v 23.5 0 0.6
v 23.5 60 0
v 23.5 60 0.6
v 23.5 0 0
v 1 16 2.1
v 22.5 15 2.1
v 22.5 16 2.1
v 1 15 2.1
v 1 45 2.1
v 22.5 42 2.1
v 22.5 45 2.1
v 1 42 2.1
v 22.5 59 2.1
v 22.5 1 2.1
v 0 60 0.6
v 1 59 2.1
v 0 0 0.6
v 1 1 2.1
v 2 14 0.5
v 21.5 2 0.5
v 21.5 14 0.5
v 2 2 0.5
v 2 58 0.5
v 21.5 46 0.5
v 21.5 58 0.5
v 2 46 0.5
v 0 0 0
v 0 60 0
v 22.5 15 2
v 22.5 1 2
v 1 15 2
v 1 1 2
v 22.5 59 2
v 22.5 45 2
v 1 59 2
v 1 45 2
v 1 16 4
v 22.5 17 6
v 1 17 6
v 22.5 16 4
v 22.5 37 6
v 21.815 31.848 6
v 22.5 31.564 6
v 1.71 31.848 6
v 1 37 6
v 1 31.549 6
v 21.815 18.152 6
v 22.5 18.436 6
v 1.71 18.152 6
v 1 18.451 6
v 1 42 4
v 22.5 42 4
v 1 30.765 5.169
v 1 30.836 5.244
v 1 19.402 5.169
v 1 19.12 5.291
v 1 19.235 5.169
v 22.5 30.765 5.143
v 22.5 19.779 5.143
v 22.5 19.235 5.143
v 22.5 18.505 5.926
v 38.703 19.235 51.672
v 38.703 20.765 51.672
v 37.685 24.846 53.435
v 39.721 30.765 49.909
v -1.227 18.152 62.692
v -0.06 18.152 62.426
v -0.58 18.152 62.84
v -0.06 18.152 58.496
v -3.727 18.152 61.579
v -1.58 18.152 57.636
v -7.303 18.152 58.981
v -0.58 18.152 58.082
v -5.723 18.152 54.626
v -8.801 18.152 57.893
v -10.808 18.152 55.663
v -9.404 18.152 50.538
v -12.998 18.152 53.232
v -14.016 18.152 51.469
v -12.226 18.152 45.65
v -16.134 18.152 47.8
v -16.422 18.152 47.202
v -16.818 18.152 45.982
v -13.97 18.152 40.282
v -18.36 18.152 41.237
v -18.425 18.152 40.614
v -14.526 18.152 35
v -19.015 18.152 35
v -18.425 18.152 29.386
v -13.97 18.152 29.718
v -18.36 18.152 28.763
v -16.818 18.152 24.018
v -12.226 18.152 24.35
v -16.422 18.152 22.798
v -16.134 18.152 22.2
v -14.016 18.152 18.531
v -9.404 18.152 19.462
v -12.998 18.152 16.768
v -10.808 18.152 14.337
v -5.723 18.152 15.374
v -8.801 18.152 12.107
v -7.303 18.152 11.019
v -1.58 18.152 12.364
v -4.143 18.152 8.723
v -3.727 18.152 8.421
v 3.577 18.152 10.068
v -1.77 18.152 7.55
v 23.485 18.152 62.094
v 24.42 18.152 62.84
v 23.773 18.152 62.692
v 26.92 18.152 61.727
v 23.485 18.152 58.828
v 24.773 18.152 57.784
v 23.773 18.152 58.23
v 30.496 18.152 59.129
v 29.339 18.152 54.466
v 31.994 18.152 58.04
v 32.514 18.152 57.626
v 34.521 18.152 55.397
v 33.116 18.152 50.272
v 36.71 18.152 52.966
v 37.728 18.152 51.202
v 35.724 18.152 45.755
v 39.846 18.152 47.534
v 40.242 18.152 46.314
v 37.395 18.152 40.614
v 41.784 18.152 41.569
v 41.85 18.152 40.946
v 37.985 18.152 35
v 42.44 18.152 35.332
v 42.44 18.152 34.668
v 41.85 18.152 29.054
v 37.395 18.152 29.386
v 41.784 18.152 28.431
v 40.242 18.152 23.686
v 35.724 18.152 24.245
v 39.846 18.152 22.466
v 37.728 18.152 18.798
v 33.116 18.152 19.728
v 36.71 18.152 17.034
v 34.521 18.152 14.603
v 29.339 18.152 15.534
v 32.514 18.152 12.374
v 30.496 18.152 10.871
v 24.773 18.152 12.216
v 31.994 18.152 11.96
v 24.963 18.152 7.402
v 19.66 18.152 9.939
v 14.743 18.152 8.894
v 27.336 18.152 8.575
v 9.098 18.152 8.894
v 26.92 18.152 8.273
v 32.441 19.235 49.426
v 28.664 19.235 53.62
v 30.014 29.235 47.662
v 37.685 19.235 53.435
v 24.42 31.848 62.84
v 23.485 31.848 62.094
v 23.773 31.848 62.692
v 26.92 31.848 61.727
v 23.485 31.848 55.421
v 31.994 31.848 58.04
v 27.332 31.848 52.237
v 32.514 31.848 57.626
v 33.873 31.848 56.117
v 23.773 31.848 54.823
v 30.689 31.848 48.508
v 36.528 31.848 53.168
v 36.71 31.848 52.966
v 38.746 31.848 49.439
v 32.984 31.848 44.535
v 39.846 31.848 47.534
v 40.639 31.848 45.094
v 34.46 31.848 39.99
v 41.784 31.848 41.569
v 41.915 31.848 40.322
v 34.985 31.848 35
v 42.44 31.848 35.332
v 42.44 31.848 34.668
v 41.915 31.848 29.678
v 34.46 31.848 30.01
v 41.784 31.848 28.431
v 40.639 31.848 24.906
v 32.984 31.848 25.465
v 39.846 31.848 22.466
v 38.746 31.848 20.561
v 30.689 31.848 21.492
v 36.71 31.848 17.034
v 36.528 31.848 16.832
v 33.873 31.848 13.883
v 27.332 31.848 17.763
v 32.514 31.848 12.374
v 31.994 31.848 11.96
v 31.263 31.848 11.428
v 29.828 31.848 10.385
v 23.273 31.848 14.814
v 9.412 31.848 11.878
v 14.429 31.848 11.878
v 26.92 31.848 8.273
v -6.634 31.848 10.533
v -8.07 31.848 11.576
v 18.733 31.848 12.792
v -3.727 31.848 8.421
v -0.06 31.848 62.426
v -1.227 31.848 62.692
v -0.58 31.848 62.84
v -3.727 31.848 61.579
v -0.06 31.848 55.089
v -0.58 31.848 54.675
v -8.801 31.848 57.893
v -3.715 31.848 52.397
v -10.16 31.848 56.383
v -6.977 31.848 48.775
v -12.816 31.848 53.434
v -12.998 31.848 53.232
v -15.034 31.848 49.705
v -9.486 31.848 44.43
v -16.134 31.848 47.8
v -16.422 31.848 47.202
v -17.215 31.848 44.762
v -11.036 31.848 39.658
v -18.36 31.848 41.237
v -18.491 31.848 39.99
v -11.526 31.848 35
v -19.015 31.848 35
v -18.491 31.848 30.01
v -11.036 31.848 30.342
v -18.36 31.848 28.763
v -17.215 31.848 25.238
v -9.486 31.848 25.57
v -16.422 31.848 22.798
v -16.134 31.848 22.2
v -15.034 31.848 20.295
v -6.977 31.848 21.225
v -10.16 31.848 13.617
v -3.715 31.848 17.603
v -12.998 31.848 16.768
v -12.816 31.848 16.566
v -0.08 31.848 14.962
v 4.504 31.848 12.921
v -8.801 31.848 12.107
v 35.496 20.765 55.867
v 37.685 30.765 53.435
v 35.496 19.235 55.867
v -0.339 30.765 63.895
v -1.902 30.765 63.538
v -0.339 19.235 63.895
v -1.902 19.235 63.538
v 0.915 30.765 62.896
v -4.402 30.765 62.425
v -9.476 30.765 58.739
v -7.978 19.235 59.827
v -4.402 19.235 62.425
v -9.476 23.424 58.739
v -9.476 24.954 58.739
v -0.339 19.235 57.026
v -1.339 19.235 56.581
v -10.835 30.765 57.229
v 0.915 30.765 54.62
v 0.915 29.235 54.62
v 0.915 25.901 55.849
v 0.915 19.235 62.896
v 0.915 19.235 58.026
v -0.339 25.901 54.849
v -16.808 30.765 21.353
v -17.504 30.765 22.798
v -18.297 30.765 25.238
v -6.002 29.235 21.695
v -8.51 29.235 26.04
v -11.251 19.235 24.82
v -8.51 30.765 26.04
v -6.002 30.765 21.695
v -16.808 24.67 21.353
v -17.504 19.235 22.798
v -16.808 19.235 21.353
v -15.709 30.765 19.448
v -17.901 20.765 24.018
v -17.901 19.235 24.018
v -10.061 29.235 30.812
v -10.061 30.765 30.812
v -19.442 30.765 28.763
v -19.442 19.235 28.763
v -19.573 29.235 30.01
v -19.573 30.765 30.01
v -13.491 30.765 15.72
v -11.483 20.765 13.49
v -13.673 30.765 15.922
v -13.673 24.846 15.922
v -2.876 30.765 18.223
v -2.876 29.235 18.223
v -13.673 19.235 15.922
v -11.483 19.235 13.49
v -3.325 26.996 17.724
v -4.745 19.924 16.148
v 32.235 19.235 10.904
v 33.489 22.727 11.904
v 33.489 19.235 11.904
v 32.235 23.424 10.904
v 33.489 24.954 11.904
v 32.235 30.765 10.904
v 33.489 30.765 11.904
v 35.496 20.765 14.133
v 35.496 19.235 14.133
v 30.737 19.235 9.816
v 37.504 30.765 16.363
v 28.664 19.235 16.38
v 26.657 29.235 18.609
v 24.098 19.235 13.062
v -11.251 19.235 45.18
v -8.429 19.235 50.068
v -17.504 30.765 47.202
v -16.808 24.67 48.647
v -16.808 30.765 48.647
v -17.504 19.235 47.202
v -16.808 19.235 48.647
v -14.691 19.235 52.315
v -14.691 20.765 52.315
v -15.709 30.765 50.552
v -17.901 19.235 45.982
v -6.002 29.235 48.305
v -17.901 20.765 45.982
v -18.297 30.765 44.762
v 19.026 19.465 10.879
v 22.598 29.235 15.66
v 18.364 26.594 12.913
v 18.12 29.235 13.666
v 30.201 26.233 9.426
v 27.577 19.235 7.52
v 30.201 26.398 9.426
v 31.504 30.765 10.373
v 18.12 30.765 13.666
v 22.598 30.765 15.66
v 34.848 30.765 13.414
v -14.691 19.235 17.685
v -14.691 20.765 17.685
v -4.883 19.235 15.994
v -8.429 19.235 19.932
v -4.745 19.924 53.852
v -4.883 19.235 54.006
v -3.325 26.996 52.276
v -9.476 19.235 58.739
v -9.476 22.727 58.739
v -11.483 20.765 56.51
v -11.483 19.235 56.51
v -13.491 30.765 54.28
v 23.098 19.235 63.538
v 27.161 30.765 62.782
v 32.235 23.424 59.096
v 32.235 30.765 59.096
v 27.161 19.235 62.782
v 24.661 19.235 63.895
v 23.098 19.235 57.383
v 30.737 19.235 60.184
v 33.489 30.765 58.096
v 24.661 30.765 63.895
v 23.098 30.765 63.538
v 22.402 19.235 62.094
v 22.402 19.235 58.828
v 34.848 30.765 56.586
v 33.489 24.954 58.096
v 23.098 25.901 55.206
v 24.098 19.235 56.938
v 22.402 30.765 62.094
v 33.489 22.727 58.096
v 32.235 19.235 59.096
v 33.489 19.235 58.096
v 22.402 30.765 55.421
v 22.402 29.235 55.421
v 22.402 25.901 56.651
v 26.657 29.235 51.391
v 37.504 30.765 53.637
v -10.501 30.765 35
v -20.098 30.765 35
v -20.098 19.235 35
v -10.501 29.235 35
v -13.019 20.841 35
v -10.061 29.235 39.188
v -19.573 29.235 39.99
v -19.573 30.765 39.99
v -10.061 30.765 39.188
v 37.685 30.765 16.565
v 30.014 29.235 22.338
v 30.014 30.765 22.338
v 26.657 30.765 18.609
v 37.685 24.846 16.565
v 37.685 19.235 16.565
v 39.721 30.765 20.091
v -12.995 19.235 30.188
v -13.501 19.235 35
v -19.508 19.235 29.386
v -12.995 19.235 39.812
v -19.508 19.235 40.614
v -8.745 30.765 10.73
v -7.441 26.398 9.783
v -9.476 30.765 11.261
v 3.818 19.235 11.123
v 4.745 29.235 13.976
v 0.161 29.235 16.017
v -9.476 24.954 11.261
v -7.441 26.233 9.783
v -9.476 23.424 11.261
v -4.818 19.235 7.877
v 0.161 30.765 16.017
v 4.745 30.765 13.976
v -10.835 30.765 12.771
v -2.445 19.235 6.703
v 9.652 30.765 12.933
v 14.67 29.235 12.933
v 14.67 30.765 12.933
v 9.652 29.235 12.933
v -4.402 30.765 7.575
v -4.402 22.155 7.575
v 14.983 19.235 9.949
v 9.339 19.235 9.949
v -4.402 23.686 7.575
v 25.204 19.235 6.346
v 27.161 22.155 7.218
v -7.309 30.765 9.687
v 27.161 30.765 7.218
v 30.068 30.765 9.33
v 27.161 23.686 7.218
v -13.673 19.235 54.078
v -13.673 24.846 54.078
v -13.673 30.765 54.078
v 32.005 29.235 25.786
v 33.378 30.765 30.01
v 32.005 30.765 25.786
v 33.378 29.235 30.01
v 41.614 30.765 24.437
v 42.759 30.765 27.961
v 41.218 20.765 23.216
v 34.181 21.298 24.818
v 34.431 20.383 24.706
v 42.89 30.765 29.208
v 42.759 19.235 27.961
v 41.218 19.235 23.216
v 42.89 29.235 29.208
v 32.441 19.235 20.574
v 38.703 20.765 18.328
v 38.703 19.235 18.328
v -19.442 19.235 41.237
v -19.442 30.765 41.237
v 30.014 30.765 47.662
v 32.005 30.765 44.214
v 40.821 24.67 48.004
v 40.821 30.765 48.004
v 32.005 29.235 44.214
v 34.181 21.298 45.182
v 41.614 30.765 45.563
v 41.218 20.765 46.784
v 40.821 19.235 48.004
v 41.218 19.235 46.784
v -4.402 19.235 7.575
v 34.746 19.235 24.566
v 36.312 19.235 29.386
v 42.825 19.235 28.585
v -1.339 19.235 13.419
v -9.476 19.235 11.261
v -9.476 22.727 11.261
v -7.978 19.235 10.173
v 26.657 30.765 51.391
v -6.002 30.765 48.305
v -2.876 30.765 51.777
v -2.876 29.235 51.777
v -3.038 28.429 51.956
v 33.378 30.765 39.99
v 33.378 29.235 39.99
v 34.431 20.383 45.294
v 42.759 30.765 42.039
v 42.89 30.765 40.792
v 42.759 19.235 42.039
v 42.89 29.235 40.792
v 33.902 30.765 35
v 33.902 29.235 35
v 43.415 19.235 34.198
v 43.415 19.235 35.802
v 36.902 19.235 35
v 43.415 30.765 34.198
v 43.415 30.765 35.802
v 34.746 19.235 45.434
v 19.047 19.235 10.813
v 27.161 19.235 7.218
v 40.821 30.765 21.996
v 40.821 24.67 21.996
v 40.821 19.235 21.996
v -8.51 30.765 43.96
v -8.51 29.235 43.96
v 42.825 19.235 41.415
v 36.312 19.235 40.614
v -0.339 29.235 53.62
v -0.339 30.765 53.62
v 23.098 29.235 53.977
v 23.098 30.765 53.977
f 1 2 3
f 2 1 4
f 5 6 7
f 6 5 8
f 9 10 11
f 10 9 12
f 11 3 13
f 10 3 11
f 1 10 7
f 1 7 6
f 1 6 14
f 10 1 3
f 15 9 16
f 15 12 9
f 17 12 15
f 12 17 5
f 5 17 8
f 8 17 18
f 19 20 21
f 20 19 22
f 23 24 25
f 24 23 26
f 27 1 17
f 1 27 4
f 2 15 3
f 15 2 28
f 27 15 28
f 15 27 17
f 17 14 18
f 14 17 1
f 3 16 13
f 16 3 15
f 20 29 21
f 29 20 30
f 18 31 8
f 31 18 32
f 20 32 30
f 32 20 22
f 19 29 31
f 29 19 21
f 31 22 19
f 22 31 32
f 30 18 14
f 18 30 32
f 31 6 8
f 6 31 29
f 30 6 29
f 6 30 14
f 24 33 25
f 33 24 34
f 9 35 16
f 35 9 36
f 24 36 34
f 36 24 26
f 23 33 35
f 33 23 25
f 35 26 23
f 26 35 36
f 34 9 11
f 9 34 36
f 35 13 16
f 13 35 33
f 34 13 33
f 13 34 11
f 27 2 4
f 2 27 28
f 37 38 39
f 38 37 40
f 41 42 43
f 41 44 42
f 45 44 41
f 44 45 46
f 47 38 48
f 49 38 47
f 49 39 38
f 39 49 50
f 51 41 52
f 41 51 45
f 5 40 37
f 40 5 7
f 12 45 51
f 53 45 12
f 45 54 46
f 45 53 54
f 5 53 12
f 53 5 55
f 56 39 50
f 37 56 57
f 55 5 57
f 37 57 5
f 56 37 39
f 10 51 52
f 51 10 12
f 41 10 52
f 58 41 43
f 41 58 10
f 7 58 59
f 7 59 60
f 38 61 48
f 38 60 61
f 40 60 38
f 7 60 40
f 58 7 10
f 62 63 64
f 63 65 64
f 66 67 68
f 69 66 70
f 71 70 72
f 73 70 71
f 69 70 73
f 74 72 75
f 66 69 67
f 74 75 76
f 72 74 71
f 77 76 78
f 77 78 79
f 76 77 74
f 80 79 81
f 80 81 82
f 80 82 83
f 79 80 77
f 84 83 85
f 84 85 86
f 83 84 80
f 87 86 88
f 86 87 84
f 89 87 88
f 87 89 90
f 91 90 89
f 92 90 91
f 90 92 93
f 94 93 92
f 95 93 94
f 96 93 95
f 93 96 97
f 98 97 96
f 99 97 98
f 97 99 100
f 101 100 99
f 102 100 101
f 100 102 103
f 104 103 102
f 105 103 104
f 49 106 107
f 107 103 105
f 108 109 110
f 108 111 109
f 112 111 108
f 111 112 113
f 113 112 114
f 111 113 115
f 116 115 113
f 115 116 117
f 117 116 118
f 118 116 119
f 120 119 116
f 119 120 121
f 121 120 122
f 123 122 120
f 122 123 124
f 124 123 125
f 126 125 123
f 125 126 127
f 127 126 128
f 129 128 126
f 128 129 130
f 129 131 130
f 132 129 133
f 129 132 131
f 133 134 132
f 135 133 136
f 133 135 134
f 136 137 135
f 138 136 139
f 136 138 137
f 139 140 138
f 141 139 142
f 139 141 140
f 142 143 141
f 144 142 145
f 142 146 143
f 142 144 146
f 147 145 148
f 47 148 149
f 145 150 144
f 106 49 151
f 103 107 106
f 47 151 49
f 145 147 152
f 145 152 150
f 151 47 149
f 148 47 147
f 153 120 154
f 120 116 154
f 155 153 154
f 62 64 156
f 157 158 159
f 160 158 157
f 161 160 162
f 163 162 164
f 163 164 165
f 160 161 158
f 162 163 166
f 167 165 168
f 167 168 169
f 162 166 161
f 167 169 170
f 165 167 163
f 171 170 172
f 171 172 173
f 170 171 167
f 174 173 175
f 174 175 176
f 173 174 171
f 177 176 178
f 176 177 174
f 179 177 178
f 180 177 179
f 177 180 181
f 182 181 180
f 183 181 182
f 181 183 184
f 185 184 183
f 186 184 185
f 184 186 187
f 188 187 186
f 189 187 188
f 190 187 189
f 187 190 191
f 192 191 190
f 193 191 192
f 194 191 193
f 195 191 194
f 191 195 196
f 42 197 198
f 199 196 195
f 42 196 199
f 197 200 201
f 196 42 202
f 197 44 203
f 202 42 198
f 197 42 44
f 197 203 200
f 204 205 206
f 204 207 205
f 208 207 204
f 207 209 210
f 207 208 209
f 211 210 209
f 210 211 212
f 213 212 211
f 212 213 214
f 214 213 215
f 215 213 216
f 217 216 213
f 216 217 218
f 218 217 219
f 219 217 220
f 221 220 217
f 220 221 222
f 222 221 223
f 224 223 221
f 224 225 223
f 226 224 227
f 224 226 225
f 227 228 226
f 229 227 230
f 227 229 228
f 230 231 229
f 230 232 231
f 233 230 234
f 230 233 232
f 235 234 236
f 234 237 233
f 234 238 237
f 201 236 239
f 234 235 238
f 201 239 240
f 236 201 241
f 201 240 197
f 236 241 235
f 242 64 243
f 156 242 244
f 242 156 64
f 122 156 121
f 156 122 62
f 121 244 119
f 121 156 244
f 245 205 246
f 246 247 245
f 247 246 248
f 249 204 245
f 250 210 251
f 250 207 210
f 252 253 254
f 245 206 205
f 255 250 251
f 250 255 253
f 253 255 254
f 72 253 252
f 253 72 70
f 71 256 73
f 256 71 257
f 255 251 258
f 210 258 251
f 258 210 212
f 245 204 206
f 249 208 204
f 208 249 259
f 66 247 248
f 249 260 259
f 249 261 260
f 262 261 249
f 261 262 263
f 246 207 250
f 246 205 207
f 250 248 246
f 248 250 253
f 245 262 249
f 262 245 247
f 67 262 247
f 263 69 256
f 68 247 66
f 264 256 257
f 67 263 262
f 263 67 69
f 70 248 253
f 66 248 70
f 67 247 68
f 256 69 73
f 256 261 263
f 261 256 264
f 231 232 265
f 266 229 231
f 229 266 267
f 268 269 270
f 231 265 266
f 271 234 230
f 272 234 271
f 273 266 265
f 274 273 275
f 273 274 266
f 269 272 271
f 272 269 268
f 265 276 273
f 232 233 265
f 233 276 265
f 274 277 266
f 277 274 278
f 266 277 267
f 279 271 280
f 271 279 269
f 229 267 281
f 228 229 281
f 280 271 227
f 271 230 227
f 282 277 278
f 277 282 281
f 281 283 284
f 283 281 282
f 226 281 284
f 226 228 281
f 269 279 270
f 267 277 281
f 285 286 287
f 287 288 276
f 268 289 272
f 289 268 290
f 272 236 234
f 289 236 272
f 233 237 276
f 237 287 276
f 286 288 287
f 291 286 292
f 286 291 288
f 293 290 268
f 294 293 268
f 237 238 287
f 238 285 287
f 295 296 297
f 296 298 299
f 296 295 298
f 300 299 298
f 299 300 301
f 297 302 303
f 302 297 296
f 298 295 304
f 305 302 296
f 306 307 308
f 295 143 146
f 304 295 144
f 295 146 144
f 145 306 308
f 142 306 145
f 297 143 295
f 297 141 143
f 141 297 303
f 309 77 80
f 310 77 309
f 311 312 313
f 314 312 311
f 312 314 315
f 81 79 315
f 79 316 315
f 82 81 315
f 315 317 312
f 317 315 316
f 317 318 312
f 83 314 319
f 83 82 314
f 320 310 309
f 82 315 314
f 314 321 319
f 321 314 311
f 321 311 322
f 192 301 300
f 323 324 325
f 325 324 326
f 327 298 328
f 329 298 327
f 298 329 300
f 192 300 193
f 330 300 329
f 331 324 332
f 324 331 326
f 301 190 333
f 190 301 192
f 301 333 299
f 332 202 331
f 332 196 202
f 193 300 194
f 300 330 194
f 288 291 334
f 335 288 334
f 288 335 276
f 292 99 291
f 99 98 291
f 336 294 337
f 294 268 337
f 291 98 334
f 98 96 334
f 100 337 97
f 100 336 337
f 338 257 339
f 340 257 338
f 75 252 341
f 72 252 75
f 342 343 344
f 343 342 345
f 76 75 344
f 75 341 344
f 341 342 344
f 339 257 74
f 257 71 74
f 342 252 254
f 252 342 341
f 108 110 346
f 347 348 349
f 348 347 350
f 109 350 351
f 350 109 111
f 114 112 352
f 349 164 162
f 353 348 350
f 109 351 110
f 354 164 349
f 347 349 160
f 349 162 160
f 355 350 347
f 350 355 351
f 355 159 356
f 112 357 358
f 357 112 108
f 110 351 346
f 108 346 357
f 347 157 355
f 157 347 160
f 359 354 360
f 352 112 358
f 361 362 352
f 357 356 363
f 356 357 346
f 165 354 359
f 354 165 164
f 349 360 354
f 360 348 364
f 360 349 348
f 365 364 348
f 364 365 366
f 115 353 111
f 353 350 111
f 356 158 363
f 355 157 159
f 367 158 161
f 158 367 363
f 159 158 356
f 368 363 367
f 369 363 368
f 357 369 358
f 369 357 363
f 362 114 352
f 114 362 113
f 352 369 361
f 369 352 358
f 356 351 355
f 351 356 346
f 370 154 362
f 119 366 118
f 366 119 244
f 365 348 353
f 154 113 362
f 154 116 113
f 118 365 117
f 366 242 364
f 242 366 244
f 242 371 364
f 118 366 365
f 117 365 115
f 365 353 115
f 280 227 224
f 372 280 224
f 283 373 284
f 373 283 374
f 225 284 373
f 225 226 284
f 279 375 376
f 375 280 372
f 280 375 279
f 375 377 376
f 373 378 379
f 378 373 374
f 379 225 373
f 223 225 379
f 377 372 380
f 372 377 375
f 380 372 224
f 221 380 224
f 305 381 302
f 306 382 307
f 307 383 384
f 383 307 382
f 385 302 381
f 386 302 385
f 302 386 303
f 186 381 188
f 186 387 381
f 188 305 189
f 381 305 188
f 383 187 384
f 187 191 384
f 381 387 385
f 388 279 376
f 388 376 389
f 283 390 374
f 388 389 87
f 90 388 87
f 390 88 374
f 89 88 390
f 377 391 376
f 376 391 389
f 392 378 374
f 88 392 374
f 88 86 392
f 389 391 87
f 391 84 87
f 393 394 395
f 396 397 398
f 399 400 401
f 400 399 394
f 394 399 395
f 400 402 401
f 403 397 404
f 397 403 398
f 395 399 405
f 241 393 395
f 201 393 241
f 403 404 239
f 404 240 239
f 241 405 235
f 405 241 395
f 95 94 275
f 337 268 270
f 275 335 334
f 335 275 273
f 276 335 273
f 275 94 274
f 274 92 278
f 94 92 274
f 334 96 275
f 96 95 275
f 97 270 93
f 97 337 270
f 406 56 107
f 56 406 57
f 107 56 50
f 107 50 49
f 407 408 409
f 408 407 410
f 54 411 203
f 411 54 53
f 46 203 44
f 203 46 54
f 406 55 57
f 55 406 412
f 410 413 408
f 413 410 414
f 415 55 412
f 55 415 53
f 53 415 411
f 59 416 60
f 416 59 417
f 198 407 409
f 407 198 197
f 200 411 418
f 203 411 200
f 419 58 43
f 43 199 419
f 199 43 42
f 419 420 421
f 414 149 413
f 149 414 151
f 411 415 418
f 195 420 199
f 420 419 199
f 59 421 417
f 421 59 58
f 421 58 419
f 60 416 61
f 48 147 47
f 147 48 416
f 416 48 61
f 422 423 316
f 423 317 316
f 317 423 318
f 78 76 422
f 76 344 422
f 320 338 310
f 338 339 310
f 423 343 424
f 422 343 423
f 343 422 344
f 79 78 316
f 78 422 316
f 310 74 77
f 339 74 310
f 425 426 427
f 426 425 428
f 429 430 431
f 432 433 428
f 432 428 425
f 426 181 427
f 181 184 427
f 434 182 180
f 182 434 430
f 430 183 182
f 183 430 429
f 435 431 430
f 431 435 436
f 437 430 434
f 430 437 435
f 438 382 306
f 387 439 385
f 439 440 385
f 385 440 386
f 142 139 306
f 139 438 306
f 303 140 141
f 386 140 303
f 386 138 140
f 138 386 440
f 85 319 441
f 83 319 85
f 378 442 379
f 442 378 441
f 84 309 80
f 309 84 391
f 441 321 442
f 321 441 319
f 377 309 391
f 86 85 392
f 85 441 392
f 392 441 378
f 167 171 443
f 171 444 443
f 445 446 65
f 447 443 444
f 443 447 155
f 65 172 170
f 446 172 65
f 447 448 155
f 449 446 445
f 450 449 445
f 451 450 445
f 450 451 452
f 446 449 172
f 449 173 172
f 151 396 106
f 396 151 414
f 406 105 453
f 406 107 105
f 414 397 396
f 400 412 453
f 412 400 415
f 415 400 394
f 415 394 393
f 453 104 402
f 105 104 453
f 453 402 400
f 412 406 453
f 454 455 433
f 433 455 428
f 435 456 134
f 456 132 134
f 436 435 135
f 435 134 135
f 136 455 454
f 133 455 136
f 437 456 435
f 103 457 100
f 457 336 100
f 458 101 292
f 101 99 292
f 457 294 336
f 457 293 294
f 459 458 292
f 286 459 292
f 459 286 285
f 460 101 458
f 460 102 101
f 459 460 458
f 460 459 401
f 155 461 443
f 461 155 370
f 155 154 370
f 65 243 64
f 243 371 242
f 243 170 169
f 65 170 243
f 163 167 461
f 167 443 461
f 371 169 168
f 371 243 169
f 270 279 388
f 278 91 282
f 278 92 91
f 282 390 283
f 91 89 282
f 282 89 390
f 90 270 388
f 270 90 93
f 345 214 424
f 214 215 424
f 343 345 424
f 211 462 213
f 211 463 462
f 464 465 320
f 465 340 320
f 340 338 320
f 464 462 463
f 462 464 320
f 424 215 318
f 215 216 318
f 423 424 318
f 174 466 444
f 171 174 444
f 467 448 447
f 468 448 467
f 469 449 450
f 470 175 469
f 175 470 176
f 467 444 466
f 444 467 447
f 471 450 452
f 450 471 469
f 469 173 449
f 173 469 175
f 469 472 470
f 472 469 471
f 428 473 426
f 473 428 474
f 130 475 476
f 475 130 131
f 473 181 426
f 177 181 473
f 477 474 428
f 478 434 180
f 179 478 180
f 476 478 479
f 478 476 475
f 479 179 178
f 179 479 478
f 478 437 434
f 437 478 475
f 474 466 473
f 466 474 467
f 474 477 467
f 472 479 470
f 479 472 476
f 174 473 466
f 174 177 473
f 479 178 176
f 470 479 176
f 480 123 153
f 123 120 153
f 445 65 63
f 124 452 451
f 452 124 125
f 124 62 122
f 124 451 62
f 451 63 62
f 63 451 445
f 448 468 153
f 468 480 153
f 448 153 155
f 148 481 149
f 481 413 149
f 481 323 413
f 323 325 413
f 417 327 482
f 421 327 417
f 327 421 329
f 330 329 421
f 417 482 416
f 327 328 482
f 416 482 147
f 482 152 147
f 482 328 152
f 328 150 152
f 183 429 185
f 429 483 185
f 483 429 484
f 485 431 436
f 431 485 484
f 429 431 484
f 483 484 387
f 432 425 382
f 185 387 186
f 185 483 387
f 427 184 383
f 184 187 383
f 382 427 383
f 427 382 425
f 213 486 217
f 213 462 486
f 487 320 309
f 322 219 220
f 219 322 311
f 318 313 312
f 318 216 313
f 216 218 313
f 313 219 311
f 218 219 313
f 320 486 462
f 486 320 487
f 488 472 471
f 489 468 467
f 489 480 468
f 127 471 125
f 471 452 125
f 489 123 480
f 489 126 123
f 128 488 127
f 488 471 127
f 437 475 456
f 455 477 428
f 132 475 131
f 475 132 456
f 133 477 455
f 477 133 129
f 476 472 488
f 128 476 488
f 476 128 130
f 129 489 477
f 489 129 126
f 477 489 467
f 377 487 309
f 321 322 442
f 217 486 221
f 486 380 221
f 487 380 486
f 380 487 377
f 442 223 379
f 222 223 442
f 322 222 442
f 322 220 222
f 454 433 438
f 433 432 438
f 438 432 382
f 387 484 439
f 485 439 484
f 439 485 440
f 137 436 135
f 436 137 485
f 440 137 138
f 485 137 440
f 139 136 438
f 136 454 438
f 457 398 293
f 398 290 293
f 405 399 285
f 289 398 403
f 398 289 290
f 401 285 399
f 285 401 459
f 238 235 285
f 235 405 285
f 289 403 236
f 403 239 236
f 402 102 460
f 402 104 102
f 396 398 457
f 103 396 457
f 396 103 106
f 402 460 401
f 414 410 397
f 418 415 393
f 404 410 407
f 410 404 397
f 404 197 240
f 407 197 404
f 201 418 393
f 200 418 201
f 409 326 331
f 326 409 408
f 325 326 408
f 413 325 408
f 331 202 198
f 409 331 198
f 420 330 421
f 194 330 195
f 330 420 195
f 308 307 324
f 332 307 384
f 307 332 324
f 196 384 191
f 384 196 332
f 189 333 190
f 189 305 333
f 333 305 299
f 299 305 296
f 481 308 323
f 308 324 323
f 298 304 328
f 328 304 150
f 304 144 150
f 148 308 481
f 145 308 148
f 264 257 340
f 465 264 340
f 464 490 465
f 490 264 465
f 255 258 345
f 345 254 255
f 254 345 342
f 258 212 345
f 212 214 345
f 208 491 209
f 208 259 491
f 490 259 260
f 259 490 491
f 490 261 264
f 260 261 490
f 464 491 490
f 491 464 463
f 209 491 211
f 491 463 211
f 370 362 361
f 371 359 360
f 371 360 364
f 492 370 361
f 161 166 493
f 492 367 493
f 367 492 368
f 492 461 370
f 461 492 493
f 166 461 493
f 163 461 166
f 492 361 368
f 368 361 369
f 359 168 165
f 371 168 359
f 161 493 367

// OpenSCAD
// Base Config
base_W = 23.5;
base_H = 60;
base_T = 0.5;
default_T = 2.0;
default_S = 12;
// $fn = 60; // When this line comment out, my pc was stoped.
// Ring Config
ring_H = 10;
ring_base_R = 24;
ring_base_W = 6;
minkowski_R = 2;

// base block
staple_base(base_T,base_W,base_H,default_S,default_T);
hull(){
    translate([1, 16, default_T]) cube([base_W - 2, 26, default_T]);
    translate([1, 17, default_T * 2]) cube([base_W - 2, 20, default_T]);
}
// Ring block
translate([11.75, 32, 35]) {
    rotate([90, 180, 0]) {
        // Ring part
        translate([0, 0, minkowski_R]) {
            minkowski() {
                difference() {
                    cylinder(h = ring_H, r = ring_base_R + ring_base_W);
                    union() {
                        cylinder(h = ring_H, r1 = ring_base_R, r2 = ring_base_R + (ring_base_W / 2));
                        translate([-12.5, -33, 0]) cube(25);
                    }
                }
                sphere(minkowski_R);
            }
        }
    }
}

module stapler_area(bt,bw,ds,dt) {
    hull() {
        translate([0, 0, dt - bt]) cube([bw - dt, ds + 2, 0.1]);
        translate([1, 1, 0]) cube([bw - dt * 2, ds, 0.1]);
    }
}

module staple_base(bt,bw,bh,ds,dt) {
    union() {
        // Base1(Bottom)
        cube([bw, bh, bt]);
        // Base2(Top)
        translate([0, 0, bt]) {
            difference() {
                // Base2_body
                hull() {
                    translate([1, 1, dt - bt]) cube([bw - 2, bh - 2, 0.1]);
                    translate([0, 0, 0]) cube([bw, bh, 0.1]);
                }
                // Base2_stapler_area1(Top)
                # translate([dt - 1, dt - 1, 0]) stapler_area(bt,bw,ds,dt);
                // Base2_stapler_area2(Bottom)
                # translate([dt - 1, bh - ds - dt - 1, 0]) stapler_area(bt,bw,ds,dt);
            }
        }
    }
}
